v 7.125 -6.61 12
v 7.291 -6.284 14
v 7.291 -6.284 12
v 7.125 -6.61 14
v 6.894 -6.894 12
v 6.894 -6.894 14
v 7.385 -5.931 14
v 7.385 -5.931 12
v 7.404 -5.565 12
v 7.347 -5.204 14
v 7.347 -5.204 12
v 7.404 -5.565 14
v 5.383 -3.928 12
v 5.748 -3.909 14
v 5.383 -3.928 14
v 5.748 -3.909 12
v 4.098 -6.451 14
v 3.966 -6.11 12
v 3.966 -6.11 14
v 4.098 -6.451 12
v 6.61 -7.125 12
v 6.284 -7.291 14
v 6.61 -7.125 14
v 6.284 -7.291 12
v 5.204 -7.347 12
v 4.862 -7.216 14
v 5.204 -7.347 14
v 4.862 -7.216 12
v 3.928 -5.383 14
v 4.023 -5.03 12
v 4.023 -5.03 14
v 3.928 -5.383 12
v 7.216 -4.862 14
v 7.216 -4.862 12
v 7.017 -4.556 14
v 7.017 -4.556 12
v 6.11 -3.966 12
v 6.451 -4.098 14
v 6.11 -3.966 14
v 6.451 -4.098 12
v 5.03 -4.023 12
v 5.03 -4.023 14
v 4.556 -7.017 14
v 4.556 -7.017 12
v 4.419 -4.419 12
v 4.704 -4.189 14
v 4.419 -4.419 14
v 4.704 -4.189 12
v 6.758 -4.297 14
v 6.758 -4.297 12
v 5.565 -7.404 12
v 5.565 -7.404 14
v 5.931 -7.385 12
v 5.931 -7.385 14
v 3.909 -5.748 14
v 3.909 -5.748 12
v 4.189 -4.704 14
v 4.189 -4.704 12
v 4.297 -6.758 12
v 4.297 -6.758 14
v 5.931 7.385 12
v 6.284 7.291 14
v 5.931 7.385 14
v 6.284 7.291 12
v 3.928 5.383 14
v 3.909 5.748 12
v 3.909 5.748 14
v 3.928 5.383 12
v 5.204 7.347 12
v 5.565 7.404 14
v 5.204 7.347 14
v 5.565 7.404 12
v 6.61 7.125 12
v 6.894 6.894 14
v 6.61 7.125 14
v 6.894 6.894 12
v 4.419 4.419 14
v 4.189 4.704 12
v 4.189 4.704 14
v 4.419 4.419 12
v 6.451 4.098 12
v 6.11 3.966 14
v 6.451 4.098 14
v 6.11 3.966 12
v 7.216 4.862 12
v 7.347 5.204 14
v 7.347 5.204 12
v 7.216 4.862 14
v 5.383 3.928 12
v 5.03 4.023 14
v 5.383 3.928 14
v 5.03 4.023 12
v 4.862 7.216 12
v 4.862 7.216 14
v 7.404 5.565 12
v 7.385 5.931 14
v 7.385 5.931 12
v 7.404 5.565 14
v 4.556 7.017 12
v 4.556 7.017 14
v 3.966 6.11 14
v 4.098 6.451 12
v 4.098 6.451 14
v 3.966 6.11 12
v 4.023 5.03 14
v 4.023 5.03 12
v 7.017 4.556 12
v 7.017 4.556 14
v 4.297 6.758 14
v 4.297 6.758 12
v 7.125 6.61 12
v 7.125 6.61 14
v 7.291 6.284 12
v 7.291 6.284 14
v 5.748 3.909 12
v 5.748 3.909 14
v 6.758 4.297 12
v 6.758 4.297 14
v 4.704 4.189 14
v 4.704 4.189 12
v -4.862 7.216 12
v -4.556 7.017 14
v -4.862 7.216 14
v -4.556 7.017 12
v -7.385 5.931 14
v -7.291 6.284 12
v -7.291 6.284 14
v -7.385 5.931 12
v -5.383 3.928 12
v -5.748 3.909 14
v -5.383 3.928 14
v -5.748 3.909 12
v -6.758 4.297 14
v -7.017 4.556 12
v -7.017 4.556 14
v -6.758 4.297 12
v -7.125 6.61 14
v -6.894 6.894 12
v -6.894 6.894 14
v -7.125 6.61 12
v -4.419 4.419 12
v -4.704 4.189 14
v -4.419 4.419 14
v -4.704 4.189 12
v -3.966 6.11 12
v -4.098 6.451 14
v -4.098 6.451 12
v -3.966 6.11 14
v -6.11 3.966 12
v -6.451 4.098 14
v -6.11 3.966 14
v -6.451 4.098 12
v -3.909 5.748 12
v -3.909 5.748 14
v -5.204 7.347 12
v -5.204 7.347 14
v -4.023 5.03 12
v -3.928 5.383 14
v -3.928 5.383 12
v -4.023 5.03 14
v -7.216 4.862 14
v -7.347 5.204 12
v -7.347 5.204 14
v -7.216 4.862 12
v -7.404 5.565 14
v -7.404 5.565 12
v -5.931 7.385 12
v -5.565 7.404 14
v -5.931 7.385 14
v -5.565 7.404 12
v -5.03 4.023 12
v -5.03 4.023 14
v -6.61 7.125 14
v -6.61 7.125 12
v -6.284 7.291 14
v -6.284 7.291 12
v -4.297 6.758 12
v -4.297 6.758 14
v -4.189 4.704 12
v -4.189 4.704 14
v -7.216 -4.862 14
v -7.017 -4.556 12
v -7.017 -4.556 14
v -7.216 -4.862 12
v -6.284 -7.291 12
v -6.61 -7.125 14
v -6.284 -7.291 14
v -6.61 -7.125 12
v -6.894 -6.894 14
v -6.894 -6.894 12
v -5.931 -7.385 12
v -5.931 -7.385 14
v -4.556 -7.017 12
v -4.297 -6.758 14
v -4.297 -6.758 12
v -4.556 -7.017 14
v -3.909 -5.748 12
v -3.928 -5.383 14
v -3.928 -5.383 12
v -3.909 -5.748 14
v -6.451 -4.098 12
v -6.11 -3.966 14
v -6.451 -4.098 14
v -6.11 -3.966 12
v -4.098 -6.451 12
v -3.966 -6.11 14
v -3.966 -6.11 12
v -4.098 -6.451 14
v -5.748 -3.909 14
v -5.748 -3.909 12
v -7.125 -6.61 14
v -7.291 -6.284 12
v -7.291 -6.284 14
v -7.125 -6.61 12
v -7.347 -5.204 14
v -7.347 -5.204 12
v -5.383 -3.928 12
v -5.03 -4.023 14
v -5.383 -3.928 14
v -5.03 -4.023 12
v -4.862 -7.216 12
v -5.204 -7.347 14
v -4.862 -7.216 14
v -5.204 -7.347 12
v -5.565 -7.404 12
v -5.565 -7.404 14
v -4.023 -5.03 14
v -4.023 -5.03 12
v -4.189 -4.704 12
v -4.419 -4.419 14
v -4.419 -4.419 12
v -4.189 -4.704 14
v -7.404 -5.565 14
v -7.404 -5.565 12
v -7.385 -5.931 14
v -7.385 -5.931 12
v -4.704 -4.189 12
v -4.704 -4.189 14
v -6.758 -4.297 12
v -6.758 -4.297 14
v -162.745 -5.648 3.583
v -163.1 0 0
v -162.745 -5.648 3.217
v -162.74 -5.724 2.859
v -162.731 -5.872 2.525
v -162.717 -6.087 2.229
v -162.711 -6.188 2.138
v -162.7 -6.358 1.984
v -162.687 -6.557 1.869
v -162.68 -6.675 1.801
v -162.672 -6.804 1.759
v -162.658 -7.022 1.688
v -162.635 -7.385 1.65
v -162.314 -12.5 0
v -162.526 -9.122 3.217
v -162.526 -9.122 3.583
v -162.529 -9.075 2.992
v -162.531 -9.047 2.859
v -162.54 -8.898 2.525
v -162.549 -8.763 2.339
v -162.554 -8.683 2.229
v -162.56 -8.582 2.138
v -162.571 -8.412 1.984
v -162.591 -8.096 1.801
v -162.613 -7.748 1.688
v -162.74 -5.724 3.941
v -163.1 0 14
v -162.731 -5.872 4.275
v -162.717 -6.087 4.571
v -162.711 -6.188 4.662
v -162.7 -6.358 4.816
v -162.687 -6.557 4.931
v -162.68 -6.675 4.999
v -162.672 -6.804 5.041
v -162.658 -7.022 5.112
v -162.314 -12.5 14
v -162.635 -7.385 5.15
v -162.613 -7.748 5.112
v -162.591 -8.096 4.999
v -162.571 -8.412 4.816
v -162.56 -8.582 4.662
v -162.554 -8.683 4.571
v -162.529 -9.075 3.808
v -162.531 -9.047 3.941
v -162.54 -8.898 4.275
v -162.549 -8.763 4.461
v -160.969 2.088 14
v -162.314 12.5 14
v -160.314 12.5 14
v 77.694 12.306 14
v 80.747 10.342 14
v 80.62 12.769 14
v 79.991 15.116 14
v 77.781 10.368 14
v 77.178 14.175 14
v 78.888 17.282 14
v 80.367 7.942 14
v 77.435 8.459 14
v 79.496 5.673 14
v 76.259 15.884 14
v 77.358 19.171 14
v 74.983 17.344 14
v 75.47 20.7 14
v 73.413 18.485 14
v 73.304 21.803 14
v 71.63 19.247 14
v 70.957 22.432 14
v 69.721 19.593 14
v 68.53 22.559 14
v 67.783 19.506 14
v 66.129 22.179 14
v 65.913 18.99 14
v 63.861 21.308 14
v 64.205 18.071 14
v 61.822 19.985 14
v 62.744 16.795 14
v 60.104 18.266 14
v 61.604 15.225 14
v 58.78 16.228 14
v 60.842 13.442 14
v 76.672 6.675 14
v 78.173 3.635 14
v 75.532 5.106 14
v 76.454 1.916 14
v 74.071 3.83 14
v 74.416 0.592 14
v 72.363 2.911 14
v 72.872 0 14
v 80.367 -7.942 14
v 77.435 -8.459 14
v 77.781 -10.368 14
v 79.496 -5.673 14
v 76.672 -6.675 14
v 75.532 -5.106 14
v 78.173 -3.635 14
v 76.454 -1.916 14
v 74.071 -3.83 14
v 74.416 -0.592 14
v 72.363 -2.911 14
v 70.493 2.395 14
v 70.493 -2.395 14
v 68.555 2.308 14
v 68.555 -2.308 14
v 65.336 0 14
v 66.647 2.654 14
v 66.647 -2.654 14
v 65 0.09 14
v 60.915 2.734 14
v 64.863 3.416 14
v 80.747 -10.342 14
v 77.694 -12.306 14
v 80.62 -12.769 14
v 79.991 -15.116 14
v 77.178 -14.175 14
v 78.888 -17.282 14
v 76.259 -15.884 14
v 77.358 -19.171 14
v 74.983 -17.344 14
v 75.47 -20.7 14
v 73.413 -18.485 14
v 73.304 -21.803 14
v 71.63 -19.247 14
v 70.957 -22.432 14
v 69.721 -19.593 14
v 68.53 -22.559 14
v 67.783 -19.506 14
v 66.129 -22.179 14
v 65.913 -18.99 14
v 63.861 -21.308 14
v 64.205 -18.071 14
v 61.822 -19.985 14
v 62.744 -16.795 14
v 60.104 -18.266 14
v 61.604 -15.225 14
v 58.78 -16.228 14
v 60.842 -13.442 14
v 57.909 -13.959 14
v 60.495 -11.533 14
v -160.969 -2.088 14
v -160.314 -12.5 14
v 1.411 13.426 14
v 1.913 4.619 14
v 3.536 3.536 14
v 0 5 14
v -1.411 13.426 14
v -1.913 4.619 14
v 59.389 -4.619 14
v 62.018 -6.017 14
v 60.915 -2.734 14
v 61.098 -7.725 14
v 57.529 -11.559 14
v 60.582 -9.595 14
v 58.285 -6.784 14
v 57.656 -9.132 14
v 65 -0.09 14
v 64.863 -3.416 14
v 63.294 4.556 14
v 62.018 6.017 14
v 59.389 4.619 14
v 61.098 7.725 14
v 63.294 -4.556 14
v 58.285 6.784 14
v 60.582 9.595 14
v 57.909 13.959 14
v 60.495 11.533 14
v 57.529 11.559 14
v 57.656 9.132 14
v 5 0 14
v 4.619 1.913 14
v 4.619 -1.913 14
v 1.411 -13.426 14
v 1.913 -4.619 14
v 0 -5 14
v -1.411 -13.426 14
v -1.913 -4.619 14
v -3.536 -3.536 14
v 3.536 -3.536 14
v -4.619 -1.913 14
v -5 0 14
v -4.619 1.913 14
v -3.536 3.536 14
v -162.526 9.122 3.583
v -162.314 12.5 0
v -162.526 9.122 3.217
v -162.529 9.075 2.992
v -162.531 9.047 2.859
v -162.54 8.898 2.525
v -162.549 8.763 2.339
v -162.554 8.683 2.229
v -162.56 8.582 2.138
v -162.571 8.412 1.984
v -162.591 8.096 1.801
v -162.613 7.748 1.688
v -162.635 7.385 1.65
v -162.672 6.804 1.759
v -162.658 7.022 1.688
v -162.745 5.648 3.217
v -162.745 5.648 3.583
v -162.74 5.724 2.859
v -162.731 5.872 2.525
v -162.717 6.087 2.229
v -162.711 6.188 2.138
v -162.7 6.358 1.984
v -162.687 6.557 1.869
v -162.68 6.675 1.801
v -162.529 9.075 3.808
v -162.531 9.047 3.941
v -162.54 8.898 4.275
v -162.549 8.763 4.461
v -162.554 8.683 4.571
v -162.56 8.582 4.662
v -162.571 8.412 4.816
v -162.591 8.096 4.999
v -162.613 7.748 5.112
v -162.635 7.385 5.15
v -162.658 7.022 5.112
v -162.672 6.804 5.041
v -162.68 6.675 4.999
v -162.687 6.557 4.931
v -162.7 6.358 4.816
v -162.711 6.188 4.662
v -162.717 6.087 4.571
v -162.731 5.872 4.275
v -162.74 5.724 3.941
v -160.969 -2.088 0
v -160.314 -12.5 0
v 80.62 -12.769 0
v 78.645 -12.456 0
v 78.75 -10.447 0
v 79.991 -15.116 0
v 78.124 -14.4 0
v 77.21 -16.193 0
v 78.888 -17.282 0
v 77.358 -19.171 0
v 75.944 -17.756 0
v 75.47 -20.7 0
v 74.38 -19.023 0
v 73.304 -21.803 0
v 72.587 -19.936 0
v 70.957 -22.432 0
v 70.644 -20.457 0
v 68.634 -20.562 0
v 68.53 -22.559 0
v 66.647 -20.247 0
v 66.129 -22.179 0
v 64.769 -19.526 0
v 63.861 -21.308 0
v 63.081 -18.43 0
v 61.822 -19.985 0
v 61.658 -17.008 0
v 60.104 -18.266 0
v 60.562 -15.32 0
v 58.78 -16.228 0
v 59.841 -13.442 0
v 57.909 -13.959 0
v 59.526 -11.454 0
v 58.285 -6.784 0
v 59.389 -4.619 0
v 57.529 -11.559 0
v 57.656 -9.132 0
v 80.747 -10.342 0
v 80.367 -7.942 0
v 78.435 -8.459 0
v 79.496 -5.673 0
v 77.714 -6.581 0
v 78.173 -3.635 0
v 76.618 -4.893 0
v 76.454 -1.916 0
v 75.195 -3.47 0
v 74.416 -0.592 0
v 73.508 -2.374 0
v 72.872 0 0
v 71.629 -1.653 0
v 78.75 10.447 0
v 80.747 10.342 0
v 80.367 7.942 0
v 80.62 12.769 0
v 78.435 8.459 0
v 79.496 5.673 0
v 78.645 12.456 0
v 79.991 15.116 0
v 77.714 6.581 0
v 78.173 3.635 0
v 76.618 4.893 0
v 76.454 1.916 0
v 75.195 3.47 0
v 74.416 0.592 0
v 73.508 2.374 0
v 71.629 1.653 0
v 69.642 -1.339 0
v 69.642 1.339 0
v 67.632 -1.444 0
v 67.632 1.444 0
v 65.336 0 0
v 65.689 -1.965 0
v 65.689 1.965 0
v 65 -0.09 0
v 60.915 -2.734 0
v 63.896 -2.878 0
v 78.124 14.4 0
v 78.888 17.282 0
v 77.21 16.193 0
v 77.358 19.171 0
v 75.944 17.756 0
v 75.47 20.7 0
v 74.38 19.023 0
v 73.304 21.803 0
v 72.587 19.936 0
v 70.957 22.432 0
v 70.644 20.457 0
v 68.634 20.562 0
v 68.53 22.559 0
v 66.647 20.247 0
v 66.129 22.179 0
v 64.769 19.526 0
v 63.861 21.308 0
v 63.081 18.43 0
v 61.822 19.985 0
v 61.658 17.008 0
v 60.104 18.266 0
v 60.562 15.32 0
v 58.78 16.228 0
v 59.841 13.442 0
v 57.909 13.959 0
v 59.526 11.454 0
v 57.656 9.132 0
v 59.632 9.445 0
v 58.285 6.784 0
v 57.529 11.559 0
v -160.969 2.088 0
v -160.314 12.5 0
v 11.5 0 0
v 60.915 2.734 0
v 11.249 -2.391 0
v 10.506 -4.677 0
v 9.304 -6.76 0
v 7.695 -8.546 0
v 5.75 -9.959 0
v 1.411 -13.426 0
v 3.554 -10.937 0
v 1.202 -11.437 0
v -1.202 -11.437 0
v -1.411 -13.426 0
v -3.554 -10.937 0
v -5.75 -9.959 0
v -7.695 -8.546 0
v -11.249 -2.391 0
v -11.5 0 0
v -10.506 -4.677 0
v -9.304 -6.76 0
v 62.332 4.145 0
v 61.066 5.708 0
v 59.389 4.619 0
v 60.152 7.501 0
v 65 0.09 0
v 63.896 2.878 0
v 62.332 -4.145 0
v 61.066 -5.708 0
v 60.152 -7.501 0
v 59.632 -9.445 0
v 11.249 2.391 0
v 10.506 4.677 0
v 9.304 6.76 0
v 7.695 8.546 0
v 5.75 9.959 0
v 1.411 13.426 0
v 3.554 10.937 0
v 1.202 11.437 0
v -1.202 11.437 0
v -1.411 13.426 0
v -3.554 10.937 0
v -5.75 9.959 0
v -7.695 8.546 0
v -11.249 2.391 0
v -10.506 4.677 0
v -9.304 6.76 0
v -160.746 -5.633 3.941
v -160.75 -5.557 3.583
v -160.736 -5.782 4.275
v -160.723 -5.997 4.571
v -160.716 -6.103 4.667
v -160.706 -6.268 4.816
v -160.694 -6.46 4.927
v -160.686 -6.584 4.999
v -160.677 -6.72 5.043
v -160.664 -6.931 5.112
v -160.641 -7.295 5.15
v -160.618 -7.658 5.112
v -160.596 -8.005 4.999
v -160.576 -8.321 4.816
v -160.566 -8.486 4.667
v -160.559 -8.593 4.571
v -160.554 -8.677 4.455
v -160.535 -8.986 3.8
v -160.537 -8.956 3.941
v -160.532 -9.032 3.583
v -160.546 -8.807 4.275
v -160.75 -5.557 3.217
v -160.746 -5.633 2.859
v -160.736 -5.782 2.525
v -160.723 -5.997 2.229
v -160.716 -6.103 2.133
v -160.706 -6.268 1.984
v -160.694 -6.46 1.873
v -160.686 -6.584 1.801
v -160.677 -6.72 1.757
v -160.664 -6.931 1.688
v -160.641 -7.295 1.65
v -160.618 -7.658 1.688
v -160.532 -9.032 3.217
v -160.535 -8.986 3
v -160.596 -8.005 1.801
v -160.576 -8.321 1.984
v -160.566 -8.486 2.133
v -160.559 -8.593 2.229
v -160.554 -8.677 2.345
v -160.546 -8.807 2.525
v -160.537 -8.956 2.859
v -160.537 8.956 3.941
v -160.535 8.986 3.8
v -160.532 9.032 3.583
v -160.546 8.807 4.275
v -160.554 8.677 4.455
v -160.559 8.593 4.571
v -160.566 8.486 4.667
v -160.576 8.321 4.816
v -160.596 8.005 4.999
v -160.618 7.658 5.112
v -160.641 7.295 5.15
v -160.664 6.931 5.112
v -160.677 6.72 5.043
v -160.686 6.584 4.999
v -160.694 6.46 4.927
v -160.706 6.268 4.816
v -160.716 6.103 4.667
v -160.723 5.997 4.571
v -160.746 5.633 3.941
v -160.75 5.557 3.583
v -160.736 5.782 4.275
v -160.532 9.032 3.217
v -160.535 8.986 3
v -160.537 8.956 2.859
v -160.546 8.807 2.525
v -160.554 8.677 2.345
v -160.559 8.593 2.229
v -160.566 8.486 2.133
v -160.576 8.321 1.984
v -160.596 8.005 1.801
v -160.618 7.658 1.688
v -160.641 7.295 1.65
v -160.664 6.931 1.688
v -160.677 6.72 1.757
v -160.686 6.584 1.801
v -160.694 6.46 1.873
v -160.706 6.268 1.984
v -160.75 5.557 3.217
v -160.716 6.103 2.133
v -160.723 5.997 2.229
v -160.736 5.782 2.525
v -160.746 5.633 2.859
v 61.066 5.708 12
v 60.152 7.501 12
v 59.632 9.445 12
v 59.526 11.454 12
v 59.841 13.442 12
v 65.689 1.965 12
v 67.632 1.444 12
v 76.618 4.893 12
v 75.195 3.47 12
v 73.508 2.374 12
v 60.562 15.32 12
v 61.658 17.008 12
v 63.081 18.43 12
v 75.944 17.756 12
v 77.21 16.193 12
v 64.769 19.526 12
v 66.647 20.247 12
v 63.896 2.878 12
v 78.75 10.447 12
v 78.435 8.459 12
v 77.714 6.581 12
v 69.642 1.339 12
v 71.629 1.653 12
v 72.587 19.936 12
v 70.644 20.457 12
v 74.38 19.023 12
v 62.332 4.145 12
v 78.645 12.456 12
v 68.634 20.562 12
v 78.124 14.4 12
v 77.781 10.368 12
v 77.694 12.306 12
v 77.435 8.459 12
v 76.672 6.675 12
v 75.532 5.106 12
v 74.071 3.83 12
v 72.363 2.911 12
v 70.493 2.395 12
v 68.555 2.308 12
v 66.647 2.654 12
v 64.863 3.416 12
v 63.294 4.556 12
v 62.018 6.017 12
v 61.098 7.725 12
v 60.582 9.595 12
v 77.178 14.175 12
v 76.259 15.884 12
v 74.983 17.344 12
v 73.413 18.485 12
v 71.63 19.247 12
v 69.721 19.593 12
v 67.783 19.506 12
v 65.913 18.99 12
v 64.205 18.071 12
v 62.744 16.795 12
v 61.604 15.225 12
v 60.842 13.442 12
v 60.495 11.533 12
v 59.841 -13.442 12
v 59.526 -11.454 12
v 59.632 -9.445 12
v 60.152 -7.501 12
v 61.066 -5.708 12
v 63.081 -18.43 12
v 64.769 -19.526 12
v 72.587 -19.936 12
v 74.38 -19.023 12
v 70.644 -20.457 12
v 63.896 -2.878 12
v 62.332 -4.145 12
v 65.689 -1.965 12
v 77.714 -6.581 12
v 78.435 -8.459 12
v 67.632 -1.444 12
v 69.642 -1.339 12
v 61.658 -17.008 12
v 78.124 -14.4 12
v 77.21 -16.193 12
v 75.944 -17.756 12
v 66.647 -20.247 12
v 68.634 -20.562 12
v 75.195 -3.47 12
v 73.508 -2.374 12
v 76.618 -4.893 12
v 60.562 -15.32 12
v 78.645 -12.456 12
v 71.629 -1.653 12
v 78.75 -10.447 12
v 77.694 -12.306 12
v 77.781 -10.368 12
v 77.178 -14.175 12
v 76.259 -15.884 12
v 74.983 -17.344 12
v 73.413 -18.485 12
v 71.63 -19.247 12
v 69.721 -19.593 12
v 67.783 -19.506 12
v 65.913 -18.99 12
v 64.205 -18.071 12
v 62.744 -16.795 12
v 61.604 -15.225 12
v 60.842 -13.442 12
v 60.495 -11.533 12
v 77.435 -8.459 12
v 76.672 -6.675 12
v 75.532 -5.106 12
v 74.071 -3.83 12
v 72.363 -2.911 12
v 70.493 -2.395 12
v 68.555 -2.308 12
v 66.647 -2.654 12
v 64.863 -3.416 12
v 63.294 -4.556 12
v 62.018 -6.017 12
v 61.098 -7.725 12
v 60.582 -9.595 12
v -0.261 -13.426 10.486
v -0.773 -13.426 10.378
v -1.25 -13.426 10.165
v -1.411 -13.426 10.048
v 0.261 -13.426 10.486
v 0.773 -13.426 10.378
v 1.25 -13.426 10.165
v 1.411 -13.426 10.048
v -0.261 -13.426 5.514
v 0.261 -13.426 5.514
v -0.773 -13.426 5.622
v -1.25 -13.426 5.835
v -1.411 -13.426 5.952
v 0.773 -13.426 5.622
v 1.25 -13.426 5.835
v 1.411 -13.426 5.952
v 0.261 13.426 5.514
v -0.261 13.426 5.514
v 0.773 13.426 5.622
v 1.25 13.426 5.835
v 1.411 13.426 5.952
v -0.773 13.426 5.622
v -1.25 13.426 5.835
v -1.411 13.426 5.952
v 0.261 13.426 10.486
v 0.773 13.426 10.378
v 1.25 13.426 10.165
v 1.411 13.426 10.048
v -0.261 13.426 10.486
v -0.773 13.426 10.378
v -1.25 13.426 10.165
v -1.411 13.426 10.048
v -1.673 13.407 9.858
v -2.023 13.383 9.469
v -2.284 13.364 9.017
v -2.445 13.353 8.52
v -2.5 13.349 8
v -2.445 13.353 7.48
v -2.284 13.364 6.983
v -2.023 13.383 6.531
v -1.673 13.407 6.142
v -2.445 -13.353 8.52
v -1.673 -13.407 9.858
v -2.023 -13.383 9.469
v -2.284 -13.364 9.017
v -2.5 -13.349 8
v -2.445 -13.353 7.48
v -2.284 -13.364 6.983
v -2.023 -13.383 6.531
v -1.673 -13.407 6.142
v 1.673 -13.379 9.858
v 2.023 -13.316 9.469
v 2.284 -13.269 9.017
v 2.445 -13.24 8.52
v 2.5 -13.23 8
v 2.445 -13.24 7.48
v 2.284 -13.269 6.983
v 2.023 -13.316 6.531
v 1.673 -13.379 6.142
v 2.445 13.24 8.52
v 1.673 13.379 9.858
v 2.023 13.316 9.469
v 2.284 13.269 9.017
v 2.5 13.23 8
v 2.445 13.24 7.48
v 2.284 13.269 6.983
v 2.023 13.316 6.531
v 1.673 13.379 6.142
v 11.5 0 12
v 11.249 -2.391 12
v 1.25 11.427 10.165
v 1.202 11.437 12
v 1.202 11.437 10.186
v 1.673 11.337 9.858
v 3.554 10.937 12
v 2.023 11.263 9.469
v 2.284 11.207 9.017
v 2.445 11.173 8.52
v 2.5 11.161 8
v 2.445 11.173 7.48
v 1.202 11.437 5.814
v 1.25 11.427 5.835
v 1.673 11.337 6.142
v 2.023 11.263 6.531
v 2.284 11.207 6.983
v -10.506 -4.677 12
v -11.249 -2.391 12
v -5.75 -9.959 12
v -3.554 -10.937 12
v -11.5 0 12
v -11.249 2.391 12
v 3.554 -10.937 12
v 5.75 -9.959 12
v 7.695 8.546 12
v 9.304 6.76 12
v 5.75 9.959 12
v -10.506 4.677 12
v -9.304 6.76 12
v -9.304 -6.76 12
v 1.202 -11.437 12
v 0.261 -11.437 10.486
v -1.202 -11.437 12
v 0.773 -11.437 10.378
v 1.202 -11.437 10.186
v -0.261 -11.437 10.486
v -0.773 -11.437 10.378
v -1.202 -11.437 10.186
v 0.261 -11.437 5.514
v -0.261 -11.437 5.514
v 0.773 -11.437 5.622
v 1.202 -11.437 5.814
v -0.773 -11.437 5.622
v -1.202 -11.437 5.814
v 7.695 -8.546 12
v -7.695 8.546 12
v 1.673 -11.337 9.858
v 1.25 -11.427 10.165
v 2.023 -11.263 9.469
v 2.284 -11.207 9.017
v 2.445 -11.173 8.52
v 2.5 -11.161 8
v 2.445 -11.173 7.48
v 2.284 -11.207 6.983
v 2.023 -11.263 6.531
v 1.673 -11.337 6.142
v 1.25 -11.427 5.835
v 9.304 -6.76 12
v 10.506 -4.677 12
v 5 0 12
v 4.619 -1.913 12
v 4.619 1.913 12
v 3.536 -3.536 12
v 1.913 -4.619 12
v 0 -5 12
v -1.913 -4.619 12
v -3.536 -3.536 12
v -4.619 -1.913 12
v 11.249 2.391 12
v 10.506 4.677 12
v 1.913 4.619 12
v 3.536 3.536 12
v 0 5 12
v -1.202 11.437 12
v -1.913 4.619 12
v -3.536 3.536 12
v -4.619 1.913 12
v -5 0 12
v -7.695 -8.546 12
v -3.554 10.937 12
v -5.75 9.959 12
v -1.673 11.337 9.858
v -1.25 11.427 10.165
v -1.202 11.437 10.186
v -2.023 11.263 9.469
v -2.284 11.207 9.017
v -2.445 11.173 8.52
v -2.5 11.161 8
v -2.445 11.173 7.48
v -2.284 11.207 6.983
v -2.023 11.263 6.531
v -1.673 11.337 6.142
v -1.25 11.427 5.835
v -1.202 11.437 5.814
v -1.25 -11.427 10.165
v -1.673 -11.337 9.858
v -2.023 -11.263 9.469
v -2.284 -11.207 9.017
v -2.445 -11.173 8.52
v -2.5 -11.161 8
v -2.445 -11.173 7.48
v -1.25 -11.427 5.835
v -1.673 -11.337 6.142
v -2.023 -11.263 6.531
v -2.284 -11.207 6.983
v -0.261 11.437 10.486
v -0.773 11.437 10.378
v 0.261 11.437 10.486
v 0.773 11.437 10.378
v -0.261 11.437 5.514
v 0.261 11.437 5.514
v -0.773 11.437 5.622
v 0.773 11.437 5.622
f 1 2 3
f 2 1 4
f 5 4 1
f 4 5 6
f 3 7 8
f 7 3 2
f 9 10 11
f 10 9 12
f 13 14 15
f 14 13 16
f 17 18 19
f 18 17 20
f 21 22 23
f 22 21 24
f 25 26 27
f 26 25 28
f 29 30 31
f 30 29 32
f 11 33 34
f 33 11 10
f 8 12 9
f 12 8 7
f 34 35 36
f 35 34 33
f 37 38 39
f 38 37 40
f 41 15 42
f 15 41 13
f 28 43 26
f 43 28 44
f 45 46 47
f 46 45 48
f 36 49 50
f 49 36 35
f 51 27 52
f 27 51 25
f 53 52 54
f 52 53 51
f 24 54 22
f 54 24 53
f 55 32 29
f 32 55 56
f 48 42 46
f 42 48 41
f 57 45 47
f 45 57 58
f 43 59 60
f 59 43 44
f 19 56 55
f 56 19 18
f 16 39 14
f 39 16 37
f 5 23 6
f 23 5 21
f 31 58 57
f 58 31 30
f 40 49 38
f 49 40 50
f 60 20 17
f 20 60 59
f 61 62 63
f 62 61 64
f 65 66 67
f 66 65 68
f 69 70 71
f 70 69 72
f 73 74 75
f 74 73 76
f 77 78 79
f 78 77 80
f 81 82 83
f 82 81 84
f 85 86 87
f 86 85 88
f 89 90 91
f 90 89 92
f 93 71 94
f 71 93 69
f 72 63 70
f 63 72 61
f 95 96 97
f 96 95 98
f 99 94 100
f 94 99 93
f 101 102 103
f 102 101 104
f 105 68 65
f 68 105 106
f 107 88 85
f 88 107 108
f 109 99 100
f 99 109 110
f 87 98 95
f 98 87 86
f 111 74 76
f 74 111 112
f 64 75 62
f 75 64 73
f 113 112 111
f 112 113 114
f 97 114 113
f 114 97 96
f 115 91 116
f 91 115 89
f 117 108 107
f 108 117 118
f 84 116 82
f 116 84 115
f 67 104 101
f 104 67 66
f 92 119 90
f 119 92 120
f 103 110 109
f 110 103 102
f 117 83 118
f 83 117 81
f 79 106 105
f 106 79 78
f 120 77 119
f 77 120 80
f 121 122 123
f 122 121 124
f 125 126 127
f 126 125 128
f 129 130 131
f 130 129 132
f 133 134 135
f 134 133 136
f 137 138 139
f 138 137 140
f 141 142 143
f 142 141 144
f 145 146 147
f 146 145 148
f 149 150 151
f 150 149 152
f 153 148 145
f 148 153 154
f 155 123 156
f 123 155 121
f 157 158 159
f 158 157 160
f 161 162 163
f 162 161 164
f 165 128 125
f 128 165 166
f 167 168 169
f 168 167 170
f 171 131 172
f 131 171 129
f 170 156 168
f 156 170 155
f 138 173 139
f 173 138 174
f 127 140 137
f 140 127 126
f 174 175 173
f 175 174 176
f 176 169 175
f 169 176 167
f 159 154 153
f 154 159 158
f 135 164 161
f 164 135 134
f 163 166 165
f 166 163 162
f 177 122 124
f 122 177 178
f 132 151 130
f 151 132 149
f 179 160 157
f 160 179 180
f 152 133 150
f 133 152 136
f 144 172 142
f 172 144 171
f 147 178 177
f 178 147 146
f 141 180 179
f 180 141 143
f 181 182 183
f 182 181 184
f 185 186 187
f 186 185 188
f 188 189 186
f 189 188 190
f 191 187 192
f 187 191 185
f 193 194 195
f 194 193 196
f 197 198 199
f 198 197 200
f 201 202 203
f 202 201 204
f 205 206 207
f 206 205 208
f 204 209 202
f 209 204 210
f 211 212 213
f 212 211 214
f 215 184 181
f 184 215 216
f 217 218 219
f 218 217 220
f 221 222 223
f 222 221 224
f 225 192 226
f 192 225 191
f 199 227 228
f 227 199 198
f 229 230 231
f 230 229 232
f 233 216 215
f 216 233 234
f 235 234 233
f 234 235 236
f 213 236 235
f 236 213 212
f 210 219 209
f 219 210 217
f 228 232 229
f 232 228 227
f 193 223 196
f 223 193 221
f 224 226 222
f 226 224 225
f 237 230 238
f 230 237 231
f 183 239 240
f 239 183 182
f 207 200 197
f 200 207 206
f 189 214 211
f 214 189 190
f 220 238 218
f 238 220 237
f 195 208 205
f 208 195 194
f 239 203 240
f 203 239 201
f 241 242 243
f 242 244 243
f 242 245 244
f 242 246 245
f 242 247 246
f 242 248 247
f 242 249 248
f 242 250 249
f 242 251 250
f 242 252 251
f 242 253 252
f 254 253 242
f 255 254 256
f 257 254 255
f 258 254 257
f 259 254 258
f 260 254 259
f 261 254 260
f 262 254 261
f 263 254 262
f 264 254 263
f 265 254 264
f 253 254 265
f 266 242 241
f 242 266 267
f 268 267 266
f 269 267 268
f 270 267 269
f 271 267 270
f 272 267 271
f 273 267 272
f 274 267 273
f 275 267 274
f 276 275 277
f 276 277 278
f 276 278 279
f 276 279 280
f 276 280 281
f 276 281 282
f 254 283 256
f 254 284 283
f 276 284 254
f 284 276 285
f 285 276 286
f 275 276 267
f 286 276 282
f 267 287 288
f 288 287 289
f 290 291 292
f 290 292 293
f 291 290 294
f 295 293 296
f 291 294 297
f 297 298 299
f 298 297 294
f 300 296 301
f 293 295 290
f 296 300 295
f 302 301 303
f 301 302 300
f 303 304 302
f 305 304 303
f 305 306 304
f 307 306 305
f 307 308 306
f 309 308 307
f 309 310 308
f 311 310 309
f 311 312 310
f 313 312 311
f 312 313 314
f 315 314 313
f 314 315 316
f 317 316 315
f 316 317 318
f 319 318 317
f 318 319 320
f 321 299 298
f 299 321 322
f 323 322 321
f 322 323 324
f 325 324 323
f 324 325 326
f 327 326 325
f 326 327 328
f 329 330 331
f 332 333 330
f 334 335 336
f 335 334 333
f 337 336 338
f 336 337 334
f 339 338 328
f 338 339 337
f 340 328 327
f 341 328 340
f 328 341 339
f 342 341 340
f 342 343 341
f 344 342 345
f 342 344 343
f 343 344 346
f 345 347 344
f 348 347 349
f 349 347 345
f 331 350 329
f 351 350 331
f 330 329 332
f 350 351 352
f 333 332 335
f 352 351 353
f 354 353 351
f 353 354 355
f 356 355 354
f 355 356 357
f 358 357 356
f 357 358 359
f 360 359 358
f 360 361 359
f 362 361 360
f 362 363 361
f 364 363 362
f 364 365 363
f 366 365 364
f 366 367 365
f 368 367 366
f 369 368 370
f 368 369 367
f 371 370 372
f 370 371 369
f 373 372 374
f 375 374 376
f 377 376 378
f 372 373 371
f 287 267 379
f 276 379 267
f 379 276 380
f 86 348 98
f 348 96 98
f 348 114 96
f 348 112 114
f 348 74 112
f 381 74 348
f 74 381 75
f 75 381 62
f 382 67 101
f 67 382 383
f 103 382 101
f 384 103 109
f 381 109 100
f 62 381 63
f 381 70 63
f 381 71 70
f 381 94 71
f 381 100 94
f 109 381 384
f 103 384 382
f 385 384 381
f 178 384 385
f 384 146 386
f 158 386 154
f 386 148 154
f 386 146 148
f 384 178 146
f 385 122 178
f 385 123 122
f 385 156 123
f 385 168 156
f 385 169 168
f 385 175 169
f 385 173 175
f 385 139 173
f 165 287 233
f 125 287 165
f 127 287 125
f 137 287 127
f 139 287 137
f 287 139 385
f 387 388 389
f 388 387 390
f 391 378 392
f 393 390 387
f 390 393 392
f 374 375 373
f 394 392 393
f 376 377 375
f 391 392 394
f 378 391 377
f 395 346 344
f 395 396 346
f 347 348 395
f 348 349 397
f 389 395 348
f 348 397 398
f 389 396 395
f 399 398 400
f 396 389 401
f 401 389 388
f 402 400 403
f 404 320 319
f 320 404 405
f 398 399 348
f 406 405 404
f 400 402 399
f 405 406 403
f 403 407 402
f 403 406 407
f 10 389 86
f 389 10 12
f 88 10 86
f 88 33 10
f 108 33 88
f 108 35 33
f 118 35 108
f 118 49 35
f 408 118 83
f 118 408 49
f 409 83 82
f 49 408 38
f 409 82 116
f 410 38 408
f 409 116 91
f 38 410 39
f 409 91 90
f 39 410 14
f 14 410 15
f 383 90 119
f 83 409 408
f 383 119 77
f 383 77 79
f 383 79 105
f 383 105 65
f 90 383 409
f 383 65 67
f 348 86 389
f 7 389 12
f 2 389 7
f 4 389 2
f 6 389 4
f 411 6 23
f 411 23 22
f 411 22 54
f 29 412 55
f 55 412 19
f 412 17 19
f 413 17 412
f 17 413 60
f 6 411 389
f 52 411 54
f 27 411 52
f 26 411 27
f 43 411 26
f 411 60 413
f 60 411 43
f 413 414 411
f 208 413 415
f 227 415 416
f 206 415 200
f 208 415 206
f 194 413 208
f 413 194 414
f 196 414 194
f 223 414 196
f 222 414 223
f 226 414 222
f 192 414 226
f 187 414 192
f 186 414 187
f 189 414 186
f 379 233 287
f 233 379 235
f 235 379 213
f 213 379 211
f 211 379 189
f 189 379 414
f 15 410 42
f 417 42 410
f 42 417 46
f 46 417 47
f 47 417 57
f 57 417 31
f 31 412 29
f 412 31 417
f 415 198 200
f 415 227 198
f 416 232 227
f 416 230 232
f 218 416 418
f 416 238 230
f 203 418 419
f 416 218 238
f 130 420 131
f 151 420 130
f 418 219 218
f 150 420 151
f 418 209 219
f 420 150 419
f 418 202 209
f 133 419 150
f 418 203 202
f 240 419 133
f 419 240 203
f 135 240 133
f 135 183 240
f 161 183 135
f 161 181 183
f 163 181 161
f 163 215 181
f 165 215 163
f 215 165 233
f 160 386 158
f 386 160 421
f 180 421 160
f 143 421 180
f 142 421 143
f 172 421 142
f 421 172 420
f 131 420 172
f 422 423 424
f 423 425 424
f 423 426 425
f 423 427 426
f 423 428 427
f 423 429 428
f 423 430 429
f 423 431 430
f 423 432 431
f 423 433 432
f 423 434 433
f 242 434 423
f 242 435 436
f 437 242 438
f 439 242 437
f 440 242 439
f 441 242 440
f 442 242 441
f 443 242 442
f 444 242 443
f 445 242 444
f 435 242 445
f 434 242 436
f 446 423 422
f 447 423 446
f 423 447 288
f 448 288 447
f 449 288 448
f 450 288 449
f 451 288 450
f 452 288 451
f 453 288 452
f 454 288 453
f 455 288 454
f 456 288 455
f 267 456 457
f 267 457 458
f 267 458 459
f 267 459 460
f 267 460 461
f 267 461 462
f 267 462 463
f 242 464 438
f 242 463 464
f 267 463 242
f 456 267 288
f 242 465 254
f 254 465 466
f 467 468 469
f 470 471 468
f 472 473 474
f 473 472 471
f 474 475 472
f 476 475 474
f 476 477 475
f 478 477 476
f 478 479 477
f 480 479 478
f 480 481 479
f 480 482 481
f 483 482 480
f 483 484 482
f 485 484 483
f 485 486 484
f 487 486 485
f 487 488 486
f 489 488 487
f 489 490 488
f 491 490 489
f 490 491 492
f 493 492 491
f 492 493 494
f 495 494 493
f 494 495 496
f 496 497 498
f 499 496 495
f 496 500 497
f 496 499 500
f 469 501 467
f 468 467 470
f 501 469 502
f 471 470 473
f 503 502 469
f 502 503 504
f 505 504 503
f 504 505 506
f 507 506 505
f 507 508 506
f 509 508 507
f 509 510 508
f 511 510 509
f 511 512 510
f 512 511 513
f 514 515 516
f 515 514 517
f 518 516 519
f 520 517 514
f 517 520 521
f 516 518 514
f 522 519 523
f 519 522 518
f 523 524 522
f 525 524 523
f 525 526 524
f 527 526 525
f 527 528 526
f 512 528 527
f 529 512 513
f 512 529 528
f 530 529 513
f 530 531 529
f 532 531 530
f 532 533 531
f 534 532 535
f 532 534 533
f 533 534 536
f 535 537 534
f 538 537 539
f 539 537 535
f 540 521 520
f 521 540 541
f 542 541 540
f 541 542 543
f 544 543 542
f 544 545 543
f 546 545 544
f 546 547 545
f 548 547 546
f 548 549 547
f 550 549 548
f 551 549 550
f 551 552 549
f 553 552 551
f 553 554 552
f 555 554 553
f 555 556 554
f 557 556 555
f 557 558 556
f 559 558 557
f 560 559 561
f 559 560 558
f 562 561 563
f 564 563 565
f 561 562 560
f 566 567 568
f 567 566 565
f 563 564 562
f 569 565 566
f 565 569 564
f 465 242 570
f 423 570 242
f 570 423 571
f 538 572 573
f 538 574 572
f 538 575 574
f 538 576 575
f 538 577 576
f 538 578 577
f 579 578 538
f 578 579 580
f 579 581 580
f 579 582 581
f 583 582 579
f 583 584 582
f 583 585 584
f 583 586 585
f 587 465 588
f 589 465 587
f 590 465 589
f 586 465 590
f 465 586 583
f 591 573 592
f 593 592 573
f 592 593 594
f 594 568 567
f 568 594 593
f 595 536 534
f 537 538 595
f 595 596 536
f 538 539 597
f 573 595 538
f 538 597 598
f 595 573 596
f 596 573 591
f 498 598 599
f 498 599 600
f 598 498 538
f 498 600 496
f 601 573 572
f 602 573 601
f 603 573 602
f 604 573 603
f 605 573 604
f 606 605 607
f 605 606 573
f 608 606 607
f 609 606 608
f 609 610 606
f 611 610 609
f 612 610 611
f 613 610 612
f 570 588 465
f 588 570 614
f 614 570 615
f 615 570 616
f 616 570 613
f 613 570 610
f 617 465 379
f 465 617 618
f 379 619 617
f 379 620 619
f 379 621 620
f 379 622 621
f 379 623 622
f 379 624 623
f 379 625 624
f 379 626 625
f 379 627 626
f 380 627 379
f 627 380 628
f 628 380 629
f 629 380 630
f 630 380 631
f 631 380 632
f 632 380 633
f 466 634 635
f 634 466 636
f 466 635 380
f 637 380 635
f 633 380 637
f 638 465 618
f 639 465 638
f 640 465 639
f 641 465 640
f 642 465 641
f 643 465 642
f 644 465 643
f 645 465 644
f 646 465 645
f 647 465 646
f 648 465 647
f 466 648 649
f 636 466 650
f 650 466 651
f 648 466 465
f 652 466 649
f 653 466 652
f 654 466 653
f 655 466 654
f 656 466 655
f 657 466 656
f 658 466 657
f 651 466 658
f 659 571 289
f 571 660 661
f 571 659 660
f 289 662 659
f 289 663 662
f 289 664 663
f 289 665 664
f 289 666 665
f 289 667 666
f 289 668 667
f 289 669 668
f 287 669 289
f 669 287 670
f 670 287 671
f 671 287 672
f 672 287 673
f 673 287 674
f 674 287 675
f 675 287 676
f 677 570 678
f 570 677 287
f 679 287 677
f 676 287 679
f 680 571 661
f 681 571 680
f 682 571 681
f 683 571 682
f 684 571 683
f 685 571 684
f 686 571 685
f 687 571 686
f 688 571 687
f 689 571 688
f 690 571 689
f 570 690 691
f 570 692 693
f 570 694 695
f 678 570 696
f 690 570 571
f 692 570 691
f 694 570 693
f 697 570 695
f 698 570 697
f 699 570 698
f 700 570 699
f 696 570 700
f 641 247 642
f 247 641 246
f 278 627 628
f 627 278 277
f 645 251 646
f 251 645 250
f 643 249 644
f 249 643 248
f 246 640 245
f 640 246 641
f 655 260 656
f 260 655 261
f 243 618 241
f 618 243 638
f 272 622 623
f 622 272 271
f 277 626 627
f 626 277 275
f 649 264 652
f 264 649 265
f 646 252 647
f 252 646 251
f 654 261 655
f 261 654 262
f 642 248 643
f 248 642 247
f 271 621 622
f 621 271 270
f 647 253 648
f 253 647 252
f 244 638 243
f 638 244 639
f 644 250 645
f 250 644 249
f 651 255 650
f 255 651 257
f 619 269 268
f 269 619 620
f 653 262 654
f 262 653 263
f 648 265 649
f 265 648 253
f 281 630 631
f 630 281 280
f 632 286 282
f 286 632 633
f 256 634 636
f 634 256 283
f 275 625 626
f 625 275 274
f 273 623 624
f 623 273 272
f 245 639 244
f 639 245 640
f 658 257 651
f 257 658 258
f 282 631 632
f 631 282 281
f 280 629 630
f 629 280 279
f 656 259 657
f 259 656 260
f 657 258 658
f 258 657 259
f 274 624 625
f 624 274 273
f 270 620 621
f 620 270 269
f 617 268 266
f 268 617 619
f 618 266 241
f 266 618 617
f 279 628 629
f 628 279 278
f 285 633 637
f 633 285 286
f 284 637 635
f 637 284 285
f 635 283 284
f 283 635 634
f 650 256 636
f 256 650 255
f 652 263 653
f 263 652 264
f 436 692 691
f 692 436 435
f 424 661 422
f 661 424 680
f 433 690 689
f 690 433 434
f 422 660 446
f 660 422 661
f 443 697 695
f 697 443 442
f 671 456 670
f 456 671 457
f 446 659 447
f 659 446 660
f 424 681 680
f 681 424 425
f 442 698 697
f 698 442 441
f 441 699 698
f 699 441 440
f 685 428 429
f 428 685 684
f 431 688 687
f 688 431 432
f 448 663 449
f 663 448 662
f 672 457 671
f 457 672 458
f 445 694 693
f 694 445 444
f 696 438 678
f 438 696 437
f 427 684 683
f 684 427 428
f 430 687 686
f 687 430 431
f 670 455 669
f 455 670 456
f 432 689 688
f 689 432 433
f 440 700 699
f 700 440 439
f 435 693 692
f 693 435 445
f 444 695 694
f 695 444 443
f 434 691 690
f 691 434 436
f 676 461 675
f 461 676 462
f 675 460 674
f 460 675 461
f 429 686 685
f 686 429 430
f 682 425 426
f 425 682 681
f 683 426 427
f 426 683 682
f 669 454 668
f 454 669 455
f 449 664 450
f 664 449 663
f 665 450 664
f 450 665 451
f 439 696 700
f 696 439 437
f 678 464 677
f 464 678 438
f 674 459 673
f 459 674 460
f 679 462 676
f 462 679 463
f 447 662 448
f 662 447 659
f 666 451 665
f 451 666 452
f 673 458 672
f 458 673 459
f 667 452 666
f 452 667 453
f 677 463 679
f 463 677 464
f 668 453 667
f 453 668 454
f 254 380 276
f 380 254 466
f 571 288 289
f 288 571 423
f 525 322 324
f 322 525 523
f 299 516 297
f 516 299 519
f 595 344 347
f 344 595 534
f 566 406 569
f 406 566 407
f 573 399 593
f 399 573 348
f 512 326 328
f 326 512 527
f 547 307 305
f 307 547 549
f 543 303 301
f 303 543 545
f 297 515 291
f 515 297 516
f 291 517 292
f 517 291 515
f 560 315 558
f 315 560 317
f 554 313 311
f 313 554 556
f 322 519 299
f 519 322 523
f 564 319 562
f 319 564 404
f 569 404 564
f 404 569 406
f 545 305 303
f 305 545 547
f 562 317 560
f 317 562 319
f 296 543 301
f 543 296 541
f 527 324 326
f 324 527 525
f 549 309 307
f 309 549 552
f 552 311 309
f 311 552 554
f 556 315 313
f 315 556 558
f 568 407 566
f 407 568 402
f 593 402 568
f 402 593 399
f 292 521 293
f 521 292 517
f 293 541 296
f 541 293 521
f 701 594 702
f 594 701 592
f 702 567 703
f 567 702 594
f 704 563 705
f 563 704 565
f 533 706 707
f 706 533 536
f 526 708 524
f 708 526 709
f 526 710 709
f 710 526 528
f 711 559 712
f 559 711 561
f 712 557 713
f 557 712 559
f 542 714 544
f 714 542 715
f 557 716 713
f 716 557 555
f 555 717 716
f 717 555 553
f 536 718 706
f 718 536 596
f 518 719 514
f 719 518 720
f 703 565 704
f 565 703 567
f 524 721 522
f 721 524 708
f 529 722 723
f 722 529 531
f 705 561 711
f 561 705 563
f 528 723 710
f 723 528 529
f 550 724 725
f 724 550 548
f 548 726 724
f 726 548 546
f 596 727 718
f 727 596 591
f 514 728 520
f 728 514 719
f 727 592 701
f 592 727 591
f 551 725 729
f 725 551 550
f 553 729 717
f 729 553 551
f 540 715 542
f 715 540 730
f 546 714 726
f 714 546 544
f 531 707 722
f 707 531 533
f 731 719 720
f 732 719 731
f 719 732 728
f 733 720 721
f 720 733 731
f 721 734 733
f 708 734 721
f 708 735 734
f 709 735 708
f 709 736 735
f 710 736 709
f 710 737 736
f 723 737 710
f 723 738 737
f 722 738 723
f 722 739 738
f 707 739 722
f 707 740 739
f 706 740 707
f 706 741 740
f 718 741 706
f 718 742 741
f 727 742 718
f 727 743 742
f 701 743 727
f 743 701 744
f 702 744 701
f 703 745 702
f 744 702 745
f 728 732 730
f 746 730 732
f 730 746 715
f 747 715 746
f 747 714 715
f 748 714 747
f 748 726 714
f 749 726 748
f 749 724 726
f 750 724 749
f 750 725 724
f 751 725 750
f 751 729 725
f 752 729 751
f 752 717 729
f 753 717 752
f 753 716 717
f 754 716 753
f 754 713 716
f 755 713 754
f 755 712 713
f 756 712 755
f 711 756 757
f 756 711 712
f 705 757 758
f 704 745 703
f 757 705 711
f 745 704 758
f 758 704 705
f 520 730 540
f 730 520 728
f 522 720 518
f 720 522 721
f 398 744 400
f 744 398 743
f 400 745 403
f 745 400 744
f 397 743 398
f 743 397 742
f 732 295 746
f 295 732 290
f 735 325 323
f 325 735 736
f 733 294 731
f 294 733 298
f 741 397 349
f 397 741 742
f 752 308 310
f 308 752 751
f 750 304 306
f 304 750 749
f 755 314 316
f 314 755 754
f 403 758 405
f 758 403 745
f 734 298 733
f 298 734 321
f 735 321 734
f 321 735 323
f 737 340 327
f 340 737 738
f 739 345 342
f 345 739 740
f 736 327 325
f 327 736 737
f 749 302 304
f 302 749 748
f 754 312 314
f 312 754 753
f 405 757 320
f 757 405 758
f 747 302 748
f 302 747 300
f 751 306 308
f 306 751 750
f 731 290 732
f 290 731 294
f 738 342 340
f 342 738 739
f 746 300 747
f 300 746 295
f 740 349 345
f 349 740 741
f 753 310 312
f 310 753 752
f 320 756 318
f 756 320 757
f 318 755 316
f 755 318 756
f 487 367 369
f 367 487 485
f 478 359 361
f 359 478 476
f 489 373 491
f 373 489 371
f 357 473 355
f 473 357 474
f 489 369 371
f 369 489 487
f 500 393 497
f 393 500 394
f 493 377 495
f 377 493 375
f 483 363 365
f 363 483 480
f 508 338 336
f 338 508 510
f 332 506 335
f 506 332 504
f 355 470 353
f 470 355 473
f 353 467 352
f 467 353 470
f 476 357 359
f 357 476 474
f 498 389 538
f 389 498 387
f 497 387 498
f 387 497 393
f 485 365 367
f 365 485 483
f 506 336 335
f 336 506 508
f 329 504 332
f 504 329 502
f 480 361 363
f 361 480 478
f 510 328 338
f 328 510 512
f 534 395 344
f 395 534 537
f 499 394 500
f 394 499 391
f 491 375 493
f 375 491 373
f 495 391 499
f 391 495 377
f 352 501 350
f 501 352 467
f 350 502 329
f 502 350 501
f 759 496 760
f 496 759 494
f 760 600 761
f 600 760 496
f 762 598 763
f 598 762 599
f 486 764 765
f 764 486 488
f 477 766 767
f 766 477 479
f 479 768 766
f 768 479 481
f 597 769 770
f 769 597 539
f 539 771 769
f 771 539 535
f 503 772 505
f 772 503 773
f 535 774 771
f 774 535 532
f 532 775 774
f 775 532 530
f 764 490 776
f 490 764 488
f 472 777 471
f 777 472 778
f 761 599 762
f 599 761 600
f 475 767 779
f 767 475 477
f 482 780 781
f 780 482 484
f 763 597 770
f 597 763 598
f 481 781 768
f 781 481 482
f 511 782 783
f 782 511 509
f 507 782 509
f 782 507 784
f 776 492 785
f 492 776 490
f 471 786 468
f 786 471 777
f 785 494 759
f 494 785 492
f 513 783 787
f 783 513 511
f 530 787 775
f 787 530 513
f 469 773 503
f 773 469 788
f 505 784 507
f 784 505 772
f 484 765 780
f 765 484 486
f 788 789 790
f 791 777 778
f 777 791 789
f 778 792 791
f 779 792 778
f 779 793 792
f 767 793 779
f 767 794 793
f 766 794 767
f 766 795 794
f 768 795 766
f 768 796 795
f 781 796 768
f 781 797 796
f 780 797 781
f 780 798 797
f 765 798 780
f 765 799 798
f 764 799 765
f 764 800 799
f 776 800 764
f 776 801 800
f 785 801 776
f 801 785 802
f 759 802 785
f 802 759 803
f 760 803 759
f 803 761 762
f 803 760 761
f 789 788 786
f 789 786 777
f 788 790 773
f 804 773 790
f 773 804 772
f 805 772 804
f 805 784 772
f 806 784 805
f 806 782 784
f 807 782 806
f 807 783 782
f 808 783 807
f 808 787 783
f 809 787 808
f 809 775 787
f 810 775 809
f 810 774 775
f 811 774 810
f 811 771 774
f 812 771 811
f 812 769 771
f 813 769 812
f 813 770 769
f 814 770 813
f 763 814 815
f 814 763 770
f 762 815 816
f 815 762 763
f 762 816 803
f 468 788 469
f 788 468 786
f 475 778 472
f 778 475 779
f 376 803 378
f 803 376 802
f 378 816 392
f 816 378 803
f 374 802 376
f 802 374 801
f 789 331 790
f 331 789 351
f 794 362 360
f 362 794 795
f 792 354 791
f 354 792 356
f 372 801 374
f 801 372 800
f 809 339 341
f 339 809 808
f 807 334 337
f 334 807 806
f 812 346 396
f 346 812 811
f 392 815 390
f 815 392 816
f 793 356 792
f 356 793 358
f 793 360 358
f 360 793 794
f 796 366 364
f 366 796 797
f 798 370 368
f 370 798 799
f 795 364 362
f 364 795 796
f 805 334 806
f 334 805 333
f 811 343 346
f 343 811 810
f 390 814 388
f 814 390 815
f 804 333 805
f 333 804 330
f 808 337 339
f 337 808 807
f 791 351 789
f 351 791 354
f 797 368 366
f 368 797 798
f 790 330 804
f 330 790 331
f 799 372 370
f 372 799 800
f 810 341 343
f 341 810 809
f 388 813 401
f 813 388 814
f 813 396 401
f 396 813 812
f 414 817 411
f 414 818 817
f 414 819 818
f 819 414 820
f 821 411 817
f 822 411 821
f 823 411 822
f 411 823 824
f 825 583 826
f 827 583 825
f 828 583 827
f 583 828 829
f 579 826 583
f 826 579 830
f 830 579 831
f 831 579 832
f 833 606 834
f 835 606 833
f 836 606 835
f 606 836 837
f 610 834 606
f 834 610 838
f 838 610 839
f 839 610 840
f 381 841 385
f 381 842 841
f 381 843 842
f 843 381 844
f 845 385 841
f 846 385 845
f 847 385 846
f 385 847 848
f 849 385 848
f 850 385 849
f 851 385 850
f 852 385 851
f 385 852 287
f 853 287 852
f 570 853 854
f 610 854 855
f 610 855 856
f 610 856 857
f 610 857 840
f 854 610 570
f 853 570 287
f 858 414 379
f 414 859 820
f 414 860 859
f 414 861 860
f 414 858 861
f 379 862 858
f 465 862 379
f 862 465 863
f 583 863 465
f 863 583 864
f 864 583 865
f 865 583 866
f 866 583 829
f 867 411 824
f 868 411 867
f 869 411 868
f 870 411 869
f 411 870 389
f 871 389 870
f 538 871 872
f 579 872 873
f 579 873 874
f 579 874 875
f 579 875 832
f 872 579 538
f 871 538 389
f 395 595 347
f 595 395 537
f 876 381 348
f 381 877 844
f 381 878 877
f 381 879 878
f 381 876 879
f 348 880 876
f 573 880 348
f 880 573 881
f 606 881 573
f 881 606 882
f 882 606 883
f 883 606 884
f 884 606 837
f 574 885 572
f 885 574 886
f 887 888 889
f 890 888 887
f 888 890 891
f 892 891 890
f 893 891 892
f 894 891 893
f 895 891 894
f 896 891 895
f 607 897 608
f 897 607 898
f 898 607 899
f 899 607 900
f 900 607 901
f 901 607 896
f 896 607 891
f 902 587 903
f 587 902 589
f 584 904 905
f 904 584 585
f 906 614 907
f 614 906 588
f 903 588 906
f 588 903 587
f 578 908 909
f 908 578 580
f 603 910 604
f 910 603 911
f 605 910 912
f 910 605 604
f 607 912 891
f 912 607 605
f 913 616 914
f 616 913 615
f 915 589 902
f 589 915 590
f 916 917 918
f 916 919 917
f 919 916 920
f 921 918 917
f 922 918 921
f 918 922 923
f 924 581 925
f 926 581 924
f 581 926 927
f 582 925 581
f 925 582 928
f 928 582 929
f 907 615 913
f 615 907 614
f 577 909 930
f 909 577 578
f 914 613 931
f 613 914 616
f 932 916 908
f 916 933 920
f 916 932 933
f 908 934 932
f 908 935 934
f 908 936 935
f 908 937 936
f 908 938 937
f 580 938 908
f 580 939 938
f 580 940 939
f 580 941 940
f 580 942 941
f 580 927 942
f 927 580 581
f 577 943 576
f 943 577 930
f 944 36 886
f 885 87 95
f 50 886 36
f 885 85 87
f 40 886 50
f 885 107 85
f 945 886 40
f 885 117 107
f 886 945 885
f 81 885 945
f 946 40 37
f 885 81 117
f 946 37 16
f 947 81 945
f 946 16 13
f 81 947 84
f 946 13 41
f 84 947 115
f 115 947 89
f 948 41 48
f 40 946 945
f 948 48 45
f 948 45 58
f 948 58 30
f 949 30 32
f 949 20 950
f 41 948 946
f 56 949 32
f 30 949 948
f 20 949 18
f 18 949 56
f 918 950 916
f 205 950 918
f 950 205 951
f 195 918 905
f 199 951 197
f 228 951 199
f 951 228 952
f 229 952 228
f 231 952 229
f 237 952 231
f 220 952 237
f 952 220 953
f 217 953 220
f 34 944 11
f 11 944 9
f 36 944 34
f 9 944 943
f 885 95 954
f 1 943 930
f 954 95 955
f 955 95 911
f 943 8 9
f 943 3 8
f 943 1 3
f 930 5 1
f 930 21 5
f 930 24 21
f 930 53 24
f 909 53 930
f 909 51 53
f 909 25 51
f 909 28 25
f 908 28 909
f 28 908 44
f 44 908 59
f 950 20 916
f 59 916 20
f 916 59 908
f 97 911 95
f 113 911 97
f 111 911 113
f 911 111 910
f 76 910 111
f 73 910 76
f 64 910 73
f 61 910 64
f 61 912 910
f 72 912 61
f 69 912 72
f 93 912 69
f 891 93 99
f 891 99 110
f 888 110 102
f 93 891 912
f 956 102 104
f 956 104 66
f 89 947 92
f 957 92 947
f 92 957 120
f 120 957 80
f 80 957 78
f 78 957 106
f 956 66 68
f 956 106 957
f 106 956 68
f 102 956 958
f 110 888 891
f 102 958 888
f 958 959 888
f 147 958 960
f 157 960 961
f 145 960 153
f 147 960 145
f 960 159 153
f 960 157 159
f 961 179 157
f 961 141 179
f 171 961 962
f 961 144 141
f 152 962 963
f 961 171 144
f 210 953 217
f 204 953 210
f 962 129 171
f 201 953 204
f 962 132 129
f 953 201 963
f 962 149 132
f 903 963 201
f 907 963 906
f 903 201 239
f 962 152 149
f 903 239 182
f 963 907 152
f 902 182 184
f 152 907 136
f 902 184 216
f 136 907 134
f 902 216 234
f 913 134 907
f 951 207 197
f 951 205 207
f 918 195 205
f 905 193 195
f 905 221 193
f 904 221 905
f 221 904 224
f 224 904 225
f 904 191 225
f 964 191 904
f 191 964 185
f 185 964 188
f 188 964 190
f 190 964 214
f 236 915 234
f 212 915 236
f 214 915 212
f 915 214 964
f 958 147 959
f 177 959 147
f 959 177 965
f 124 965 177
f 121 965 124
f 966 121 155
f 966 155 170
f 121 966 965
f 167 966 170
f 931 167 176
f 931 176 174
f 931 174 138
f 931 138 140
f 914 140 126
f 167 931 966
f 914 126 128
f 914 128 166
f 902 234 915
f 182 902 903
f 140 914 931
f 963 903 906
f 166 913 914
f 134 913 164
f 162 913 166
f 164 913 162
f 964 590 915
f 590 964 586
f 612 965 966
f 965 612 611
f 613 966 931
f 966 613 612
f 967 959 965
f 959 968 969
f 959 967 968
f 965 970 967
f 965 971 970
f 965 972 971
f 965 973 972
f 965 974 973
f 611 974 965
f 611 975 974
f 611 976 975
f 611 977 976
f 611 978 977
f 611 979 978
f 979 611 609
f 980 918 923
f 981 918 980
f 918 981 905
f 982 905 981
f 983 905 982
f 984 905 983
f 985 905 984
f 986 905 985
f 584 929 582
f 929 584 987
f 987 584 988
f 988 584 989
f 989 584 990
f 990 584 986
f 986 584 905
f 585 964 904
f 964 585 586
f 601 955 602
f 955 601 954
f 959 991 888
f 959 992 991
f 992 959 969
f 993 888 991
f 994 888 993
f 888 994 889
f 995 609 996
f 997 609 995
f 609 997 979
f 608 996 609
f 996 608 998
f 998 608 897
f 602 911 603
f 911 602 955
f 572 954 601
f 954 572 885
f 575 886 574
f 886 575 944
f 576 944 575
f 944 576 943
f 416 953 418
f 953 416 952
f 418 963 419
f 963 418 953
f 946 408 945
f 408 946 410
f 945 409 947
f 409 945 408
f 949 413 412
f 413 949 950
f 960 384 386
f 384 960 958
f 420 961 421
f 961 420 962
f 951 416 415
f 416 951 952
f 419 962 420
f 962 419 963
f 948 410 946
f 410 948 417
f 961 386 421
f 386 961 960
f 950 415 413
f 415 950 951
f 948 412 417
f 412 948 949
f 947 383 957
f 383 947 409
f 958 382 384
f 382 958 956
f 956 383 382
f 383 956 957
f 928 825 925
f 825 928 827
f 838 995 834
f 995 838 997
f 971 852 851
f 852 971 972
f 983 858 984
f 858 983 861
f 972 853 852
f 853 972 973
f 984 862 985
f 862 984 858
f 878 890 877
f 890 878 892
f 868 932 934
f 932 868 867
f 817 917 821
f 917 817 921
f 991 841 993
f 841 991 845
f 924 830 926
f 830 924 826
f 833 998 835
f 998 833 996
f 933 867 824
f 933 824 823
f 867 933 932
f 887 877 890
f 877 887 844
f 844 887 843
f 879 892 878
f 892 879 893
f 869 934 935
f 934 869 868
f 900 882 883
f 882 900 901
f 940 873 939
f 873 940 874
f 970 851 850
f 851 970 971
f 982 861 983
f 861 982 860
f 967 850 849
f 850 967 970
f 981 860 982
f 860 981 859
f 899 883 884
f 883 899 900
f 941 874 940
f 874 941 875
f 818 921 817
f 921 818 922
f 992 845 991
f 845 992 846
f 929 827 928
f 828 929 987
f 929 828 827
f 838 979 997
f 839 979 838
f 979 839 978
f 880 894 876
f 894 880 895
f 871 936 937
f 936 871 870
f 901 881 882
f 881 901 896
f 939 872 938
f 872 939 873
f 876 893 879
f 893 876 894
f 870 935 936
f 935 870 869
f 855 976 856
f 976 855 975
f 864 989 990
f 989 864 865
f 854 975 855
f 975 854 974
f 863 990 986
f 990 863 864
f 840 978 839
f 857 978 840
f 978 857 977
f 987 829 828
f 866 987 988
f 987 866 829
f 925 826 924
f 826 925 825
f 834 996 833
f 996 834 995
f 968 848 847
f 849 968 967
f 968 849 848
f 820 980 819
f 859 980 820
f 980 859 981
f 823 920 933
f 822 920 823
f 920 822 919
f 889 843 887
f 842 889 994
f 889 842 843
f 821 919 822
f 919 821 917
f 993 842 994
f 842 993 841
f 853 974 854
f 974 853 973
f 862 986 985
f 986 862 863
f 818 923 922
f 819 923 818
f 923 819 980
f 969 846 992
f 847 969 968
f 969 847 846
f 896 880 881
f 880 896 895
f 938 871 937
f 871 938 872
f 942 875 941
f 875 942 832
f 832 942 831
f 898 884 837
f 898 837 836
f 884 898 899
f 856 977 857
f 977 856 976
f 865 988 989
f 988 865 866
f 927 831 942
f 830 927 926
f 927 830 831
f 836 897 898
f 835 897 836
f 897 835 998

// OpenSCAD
inch = 25.4;

globe_d = 13 * inch;
globe_r = globe_d/2;
globe_thickness = 2;
globe_ir = globe_r - globe_thickness;


height = 14;

RR = 70;
rr = RR - 40;
dd = 8; // magnet support offset from globe_ir

flange_d = 23;
um3_tol = .2;
penny_d = .75 * inch + um3_tol;
penny_t = .06 * inch;

module penny_compartment(dd, ang=0){
  rotate([0,0,180+ang])difference(){
    hull(){
      //translate([0,0,0])cylinder(d=flange_d + 4, h=height);
      translate([-dd,0,0])cylinder(d=penny_d + 4, h=height);
    }
    translate([0,0,-2])translate([-dd,0,0])cylinder(d=penny_d, h=height);
    translate([0,0,-2])translate([-dd,0,0])cylinder(d=penny_d * .9, h=height * 2);
  }
  if(false)
  difference(){
    cylinder(d=flange_d + 4, h=.2);
    translate([0,0,-1])cylinder(d=penny_d - .2, h=3);
  }
}

penny_r = 70;
ang = -8.5;
module aov_arm(){
  rotate([0,0,180]){
    difference(){
      union(){
	hull(){
	  cylinder(d=flange_d + 4, h=height);
	  translate([globe_ir-1,-2,0])cube([.1,4,height]);
	}
	hull(){
	  cylinder(d=flange_d + 4, h=height);
	  translate([-penny_r+5,-2,0])cube([.1,4,height]);
	}
	ang = 9;
	rotate([0,0,180])penny_compartment(penny_r, ang);
	rotate([0,0,180])penny_compartment(penny_r, -ang);
      }
      translate([0,0,-1])cylinder(h=height-1, d=flange_d);
      translate([0,0,-1])cylinder(h=height*2, d=10);
      for(i=[1:4]){
	rotate([0,0,45 + 90 * i])translate([8,0,0])cylinder(d=3.5, h=30, $fn=30);
      }
      translate([0,0,8])rotate([90,0,0])cylinder(d=5, h=40, $fn=30, center=true);
    }

    intersection(){
      difference(){
	cylinder(r=globe_ir, h=height, $fn=50);
	translate([0,0,-1])cylinder(r=globe_ir-2, h=height+2, $fn=50);
	rotate([90,0,0])translate([0,8,0])cylinder(d=5, h=30, $fn=30);
	rotate([0, 0, 180+2.6])translate([-200, 0, 3.4])
	  rotate([0, 90, 0])cylinder(d=3.5, h=100, $fn=30);
	rotate([0, 0, 180-2.6])translate([-200, 0, 3.4])
	  rotate([0, 90, 0])cylinder(d=3.5, h=100, $fn=30);
      }
      translate([100,0,0])cube([200, 25, 100], center=true);
    }
  }
}
aov_arm();
//rotate([0,0,+ang])translate([penny_r,0,0])penny_compartment(0);
//rotate([0,0,-ang])translate([penny_r,0,0])penny_compartment(0);
